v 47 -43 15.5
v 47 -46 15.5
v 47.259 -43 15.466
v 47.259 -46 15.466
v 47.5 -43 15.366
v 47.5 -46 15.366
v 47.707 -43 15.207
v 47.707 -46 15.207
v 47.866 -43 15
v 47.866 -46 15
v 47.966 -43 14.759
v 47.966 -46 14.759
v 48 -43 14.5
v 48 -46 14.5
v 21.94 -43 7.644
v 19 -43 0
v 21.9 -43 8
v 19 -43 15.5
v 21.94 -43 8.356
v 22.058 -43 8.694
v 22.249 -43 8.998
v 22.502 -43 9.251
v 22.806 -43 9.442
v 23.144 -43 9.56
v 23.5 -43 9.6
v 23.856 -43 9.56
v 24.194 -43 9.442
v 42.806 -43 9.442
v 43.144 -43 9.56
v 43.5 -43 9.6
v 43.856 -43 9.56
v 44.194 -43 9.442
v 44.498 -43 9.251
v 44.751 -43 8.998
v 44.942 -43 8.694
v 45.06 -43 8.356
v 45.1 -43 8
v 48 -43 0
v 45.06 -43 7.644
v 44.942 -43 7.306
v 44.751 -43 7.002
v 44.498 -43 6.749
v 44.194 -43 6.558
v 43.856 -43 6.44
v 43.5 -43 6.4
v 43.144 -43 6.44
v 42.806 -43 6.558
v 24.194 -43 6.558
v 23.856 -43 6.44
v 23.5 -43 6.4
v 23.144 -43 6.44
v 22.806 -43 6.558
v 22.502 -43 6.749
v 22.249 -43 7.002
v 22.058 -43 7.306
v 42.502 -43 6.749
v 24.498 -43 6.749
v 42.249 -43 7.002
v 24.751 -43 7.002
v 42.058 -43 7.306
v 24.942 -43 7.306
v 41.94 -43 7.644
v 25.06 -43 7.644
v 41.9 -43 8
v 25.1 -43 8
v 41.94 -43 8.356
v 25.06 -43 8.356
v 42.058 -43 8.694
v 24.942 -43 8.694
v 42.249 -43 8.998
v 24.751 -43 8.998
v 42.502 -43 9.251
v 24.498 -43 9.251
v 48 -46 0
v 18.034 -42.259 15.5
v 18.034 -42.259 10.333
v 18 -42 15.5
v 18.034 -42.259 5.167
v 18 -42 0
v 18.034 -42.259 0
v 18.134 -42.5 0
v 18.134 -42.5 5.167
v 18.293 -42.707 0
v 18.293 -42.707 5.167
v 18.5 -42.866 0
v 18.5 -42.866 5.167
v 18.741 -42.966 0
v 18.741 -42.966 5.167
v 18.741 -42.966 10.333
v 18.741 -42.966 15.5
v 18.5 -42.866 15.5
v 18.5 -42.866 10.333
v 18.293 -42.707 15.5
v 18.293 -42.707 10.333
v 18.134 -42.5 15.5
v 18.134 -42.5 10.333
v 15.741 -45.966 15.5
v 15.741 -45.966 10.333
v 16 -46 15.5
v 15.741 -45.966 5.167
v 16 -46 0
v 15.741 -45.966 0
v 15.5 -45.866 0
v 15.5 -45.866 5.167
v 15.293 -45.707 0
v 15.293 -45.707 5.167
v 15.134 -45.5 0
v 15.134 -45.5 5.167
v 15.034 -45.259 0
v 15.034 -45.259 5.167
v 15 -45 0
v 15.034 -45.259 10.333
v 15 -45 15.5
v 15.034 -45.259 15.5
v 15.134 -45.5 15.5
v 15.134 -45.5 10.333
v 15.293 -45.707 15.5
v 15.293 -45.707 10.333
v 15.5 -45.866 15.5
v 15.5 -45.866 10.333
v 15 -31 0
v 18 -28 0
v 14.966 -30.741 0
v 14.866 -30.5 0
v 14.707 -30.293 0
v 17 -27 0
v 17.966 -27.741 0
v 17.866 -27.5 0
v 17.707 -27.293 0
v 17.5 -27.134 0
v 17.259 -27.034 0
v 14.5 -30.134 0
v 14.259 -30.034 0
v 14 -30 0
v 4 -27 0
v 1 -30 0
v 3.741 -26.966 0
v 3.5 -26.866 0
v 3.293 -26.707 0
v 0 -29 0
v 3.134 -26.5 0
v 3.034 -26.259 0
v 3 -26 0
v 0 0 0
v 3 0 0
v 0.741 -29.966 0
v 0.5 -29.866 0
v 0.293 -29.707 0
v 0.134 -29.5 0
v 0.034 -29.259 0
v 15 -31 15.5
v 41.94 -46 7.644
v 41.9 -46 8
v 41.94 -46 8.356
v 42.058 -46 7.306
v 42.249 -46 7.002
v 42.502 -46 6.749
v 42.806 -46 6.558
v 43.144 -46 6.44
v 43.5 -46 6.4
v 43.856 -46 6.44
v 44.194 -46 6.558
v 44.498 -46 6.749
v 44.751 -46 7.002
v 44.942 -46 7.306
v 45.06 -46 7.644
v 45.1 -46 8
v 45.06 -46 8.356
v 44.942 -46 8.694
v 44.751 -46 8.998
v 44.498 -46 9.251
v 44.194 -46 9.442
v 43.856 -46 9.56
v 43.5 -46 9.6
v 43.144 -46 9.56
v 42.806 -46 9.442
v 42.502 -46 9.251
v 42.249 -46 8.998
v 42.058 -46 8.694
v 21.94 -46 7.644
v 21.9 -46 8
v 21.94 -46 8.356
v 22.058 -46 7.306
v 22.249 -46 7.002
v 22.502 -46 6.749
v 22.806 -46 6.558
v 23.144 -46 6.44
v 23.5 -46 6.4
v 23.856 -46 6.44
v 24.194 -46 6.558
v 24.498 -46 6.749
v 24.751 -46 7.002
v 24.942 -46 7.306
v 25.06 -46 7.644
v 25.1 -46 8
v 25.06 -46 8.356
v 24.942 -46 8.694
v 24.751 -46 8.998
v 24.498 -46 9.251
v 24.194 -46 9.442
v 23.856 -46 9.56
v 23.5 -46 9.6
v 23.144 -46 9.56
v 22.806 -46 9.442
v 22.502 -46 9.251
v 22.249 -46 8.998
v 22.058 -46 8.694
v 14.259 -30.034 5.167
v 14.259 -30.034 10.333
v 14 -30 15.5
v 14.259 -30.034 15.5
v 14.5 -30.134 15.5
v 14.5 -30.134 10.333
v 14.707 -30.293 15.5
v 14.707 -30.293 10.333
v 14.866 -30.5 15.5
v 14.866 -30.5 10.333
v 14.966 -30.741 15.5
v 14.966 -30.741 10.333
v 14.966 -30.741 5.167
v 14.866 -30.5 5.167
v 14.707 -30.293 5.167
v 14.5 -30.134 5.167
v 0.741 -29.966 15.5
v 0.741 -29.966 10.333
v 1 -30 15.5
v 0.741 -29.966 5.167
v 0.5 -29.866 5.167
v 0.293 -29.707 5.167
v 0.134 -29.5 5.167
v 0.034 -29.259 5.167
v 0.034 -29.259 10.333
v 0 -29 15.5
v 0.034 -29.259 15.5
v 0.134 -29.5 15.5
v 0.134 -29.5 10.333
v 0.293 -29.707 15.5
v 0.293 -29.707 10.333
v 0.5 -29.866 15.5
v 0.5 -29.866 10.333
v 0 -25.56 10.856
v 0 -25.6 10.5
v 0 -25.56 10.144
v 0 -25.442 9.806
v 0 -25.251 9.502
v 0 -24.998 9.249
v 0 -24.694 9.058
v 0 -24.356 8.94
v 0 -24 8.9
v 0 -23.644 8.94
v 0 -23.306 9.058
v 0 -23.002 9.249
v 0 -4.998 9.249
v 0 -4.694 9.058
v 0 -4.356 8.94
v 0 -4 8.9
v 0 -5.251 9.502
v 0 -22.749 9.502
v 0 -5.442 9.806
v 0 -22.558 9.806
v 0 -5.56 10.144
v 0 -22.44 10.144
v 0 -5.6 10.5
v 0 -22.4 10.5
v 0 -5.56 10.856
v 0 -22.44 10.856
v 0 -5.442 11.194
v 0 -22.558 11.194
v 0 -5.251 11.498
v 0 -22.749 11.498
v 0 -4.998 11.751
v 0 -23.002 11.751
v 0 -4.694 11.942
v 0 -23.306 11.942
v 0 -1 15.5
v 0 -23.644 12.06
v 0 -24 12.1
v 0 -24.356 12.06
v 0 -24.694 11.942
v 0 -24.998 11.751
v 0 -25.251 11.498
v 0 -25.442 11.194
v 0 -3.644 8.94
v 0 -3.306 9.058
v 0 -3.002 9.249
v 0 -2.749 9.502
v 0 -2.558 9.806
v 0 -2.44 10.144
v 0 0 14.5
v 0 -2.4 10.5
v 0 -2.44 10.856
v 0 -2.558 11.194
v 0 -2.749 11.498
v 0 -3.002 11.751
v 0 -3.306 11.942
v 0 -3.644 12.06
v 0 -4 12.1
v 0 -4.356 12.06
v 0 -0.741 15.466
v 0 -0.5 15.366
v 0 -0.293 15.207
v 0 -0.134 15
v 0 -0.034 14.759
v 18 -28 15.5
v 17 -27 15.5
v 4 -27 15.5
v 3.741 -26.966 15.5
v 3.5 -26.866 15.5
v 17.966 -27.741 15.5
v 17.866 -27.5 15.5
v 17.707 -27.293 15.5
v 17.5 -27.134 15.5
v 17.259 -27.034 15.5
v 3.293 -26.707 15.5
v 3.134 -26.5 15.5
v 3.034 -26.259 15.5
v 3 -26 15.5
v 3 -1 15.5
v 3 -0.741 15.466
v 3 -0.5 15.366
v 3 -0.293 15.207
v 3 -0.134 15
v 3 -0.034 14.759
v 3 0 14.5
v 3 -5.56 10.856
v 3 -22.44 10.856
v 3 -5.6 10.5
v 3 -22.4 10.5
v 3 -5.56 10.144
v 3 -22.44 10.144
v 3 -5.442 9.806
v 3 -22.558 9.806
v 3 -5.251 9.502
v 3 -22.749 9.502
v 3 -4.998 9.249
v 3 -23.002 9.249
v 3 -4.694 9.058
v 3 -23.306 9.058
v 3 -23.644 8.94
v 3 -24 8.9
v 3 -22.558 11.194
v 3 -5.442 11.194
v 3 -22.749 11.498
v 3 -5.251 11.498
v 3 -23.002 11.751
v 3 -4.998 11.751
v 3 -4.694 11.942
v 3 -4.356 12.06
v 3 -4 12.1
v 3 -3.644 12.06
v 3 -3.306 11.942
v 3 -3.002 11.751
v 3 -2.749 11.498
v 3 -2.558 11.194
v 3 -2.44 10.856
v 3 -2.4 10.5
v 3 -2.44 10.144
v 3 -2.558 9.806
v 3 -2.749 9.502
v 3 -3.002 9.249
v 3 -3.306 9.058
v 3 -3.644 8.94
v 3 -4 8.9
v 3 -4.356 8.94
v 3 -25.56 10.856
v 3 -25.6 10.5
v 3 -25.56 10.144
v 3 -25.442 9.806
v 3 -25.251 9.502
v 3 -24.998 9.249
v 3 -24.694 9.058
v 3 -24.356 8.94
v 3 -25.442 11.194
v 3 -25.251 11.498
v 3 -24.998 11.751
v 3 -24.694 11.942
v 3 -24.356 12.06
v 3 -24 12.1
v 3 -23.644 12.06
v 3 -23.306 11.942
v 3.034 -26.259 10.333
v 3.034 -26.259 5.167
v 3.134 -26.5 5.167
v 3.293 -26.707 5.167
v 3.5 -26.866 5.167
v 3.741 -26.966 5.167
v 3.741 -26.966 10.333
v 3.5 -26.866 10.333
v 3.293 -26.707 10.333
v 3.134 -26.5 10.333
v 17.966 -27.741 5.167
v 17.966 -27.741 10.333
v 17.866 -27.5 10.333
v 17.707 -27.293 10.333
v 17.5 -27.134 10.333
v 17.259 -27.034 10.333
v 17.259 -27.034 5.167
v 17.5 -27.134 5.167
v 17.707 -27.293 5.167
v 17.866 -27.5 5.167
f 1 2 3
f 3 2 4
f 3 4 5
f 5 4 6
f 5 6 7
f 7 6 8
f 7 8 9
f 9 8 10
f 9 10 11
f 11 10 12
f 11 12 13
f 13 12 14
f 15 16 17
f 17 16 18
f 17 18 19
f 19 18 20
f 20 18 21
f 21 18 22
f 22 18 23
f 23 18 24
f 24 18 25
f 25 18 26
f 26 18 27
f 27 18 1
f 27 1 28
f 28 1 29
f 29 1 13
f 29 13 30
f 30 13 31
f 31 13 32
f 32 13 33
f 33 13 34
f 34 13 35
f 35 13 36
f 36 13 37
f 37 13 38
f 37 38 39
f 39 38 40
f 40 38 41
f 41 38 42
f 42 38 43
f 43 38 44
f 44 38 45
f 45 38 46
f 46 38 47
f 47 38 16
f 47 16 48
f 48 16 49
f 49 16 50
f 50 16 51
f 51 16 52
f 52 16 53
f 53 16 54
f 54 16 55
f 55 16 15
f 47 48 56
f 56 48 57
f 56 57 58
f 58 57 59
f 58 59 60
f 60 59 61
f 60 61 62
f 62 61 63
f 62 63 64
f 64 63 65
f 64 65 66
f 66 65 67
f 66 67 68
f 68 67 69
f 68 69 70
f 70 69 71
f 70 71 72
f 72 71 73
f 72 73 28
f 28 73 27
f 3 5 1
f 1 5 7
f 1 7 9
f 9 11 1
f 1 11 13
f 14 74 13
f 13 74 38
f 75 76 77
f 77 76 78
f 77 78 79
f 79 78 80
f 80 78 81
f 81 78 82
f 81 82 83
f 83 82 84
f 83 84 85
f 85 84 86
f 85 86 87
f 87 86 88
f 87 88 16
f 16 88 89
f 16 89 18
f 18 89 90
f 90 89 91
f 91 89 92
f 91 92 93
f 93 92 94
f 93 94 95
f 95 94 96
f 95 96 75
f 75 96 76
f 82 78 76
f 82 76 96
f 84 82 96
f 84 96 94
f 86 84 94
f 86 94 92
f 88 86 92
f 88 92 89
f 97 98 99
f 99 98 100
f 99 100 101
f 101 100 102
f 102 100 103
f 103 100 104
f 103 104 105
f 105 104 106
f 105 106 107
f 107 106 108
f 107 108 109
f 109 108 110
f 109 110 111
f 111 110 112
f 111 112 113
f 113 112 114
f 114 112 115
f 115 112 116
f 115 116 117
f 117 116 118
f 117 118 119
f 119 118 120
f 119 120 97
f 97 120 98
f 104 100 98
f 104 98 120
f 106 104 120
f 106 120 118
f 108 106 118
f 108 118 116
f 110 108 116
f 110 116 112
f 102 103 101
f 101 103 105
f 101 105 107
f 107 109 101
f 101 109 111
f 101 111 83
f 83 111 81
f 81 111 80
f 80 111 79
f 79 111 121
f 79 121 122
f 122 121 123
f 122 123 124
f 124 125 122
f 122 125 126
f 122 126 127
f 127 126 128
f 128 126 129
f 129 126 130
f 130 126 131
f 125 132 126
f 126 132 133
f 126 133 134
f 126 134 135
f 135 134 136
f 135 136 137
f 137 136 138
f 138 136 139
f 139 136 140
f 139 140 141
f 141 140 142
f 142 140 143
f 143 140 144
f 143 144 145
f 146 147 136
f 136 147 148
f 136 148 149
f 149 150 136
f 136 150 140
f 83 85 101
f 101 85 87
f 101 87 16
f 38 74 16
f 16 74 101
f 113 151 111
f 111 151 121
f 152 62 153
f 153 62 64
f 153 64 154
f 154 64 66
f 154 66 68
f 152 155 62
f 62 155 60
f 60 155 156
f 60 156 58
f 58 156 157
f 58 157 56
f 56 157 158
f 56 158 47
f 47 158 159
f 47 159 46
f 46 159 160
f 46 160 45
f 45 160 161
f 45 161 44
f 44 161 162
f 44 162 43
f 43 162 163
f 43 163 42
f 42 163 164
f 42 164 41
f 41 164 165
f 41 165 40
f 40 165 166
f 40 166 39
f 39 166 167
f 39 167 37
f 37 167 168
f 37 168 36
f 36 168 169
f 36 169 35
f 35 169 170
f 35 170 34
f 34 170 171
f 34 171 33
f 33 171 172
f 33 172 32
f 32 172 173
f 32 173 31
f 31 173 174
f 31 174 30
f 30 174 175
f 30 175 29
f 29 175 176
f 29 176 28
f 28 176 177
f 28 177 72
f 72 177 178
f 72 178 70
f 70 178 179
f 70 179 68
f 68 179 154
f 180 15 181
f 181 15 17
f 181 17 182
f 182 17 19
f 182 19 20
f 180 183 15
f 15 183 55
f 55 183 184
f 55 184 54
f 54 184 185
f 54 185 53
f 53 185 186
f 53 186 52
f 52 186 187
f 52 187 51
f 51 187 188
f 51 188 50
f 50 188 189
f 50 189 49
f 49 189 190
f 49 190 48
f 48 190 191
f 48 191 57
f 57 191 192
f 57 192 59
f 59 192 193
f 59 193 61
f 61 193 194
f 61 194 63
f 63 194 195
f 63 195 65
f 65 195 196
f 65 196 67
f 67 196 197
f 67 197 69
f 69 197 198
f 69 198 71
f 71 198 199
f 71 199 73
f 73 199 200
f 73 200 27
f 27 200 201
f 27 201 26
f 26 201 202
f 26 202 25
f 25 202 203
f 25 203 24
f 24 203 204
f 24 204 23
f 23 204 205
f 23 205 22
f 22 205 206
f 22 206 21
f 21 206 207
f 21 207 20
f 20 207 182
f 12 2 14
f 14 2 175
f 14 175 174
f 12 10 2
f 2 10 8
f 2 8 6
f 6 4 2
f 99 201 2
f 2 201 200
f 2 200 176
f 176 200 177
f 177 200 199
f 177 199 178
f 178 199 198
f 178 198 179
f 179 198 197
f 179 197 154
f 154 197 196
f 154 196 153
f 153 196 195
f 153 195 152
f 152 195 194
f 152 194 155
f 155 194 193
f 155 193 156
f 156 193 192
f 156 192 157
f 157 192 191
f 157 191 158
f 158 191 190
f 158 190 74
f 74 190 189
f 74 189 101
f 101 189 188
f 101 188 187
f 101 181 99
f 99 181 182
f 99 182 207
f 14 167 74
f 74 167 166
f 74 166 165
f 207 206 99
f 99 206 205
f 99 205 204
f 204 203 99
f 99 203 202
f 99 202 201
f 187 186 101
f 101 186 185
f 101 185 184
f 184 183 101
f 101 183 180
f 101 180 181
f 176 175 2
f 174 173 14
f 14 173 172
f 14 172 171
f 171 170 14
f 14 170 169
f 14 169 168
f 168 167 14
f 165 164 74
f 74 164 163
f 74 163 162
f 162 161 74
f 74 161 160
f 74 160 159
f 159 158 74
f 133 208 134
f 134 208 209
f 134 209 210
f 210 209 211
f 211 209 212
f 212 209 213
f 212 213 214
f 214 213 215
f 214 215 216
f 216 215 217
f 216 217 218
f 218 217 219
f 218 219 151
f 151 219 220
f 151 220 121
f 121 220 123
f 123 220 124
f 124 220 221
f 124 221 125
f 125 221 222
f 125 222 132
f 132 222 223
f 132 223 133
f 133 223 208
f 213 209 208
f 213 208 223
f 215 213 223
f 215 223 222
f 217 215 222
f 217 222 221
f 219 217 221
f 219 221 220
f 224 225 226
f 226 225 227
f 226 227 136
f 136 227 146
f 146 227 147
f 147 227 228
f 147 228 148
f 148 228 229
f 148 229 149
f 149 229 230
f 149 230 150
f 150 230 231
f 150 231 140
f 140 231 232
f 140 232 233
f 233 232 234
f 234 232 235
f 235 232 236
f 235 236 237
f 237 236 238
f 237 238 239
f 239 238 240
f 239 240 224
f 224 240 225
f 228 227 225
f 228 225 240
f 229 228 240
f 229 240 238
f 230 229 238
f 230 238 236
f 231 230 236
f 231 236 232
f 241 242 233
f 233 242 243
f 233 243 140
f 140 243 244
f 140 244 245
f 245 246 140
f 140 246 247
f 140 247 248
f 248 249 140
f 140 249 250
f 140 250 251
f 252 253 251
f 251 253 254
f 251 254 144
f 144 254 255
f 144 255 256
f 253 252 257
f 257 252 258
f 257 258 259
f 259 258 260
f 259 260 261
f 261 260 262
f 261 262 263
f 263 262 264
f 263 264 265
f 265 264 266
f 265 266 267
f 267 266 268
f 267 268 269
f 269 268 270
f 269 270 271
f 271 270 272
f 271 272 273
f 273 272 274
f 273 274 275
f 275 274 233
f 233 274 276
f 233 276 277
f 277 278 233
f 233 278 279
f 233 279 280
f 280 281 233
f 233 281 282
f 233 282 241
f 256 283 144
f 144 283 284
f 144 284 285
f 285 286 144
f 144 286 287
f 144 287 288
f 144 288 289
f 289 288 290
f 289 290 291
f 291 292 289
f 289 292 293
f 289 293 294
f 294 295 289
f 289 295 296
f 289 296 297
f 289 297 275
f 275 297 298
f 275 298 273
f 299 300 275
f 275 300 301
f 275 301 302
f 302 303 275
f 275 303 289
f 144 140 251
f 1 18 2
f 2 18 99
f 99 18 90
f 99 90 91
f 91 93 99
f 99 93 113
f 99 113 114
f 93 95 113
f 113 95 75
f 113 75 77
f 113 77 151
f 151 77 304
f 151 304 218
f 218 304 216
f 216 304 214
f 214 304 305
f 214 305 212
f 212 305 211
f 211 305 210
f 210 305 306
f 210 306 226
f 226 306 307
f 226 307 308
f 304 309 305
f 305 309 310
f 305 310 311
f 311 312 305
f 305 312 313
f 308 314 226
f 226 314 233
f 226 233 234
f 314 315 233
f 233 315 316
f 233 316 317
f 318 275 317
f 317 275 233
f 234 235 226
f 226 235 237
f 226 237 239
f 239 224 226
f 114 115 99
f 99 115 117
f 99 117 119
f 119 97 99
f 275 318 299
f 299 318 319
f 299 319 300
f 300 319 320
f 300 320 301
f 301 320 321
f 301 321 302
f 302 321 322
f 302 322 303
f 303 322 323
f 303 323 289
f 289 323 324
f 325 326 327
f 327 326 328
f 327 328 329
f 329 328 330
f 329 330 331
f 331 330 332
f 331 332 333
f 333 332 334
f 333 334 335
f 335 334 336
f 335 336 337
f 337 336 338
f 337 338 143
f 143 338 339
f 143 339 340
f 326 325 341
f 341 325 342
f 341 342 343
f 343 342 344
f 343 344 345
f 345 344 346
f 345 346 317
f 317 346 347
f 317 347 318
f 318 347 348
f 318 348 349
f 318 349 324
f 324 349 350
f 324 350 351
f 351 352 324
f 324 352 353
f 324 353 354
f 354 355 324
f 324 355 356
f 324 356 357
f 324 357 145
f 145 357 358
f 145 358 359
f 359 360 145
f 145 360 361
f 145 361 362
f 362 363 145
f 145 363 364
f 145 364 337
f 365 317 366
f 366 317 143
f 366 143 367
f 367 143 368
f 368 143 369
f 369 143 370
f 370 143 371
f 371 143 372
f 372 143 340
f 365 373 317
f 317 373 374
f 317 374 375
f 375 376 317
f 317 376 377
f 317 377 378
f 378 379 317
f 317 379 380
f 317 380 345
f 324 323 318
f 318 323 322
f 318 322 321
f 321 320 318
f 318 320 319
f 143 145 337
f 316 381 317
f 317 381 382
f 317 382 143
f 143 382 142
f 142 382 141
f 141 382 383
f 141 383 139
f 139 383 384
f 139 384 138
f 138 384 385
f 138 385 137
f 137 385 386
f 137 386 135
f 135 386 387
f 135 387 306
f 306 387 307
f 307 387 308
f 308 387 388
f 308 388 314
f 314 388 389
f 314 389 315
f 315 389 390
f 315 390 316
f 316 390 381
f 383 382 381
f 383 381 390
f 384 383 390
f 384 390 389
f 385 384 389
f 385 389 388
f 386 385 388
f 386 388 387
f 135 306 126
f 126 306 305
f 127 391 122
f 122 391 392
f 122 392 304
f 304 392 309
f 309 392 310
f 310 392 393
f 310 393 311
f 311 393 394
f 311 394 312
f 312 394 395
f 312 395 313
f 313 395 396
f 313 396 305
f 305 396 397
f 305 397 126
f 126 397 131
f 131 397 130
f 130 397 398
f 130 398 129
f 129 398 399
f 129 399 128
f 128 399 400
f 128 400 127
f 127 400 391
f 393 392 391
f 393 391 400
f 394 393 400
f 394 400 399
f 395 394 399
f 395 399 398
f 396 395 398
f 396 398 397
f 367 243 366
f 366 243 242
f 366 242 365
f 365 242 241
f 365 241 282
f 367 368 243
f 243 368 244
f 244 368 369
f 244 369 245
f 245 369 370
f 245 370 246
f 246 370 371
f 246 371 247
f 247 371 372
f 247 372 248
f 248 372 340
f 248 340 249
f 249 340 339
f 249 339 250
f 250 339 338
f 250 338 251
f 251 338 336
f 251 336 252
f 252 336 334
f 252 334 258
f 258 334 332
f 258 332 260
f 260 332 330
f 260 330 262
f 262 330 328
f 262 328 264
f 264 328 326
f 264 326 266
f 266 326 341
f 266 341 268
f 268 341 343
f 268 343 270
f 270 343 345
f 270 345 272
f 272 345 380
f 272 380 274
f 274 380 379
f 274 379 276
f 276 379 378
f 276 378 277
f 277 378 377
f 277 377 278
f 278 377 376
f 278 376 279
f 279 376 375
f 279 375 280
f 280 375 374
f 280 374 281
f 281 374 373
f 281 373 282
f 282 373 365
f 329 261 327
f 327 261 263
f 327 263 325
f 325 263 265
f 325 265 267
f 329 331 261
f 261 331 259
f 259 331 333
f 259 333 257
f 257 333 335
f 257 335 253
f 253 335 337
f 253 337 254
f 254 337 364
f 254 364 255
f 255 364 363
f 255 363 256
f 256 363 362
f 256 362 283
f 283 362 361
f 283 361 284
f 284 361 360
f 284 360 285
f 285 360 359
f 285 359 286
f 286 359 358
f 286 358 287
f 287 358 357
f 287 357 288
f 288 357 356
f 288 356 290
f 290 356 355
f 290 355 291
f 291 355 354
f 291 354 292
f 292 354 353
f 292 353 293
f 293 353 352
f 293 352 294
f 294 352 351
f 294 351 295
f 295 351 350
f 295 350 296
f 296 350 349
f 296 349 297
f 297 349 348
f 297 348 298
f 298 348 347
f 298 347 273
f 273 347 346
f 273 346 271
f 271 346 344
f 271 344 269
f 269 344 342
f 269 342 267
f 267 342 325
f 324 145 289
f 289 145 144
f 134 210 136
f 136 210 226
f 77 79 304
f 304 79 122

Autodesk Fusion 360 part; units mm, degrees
sketch "Sketch1" plane through (0, 0, 0) normal (1, 0, 0) x (0, 1, 0)
  line L0 (0, 0) -> (-30, 0)
  line L1 (-30, 0) -> (-30, 15.5)
  line L2 (-30, 15.5) -> (0, 15.5)
  line L3 (0, 15.5) -> (0, 0)
  circle A0 centre (-4, 10.5) radius 1.6
  circle A1 centre (-24, 10.5) radius 1.6
  dimension "d1" = 30
  dimension "d2" = 15.5
  dimension "d3" = 3.2
  dimension "d4" = 3.2
  dimension "d5" = 20
  dimension "d6" = 4
  dimension "d7" = 5
extrude "Extrude1" add sketch "Sketch1" along normal blind 3 makes body 1
sketch "Sketch2" plane through (0, 0, 0) normal (0, 1, 0) x (1, 0, 0)
sketch "Sketch3" plane through (0, -30, 0) normal (0, -1, 0) x (1, 0, 0)
  line L0 (0, 15.5) -> (0, 0)
  line L1 (0, 0) -> (3, 0)
  line L2 (3, 0) -> (3, 15.5)
  line L3 (3, 15.5) -> (0, 15.5)
  line L4 (3, 15.5) -> (15, 15.5)
  line L5 (15, 15.5) -> (15, 0)
  line L6 (15, 0) -> (3, 0)
  line L7 (3, 0) -> (3, 15.5)
  dimension "d10" = 12
extrude "Extrude2" add sketch "Sketch3" against normal blind 3 contours L2 L4 L5 L6 L7 bodies 1
sketch "Sketch4" plane through (15, 0, 0) normal (1, 0, 0) x (0, 1, 0)
  line L0 (-30, 15.5) -> (-30, 0)
  line L1 (-30, 0) -> (-27, 0)
  line L2 (-27, 0) -> (-27, 15.5)
  line L3 (-27, 15.5) -> (-30, 15.5)
  line L4 (-30, 15.5) -> (-43, 15.5)
  line L5 (-43, 15.5) -> (-43, 0)
  line L6 (-43, 0) -> (-30, 0)
  line L7 (-30, 0) -> (-30, 15.5)
  dimension "d13" = 13
extrude "Extrude3" add sketch "Sketch4" along normal blind 3 separate body contours L0 L4 L5 L6 L7 makes body 2
extrude "Extrude4" add 1 faces at (16, -30, 10.3333) along direction (0, 1, 0) blind 3 on bodies 2 bodies 2 1
fillet "Fillet1" radius 1 1 edges at (18, -27, 7.75) on bodies 2
fillet "Fillet2" radius 1 1 edges at (3, -27, 7.75) on bodies 2
fillet "Fillet3" radius 1 1 edges at (1.5, 0, 15.5) on bodies 2
fillet "Fillet4" radius 1 1 edges at (0, -30, 7.75) on bodies 2
fillet "Fillet5" radius 1 1 edges at (15, -30, 7.75) on bodies 2
sketch "Sketch13" plane through (0, -43, 0) normal (0, -1, 0) x (1, 0, 0)
  line L0 (15, 15.5) -> (15, 0)
  line L1 (15, 0) -> (18, 0)
  line L2 (18, 0) -> (18, 15.5)
  line L3 (18, 15.5) -> (15, 15.5)
  line L4 (15, 15.5) -> (46, 15.5)
  line L5 (46, 15.5) -> (46, 0)
  line L6 (46, 0) -> (15, 0)
  line L7 (15, 0) -> (15, 15.5)
  circle A0 centre (43.5, 8) radius 1.6
  circle A1 centre (23.5, 8) radius 1.6
  line L8 (15, 15.5) -> (15, 0)
  line L9 (15, 0) -> (18, 0)
  line L10 (18, 0) -> (18, 15.5)
  line L11 (18, 15.5) -> (15, 15.5)
  dimension "d97" = 31
  dimension "d98" = 15.5
  dimension "d99" = 3.2
  dimension "d101" = 3.2
  dimension "d102" = 20
  dimension "d111" = 7.5
  dimension "d114" = 2.5
extrude "Extrude19" add sketch "Sketch13" along normal blind 3 contours L2 L4 L5 L6 L10 bodies 2
extrude "Extrude20" add 1 faces at (18, -44, 5.1667) along direction (-1, 0, 0) blind 3 on bodies 2 bodies 2
fillet "Fillet8" radius 1 1 edges at (15, -46, 7.75) on bodies 2
fillet "Fillet9" radius 1 1 edges at (18, -43, 7.75) on bodies 2
extrude "Extrude21" add 1 faces at (46, -44, 10.3333) along direction (1, 0, 0) blind 2 on bodies 2 bodies 2
fillet "Fillet11" radius 1 1 edges at (48, -44.5, 15.5) on bodies 2
